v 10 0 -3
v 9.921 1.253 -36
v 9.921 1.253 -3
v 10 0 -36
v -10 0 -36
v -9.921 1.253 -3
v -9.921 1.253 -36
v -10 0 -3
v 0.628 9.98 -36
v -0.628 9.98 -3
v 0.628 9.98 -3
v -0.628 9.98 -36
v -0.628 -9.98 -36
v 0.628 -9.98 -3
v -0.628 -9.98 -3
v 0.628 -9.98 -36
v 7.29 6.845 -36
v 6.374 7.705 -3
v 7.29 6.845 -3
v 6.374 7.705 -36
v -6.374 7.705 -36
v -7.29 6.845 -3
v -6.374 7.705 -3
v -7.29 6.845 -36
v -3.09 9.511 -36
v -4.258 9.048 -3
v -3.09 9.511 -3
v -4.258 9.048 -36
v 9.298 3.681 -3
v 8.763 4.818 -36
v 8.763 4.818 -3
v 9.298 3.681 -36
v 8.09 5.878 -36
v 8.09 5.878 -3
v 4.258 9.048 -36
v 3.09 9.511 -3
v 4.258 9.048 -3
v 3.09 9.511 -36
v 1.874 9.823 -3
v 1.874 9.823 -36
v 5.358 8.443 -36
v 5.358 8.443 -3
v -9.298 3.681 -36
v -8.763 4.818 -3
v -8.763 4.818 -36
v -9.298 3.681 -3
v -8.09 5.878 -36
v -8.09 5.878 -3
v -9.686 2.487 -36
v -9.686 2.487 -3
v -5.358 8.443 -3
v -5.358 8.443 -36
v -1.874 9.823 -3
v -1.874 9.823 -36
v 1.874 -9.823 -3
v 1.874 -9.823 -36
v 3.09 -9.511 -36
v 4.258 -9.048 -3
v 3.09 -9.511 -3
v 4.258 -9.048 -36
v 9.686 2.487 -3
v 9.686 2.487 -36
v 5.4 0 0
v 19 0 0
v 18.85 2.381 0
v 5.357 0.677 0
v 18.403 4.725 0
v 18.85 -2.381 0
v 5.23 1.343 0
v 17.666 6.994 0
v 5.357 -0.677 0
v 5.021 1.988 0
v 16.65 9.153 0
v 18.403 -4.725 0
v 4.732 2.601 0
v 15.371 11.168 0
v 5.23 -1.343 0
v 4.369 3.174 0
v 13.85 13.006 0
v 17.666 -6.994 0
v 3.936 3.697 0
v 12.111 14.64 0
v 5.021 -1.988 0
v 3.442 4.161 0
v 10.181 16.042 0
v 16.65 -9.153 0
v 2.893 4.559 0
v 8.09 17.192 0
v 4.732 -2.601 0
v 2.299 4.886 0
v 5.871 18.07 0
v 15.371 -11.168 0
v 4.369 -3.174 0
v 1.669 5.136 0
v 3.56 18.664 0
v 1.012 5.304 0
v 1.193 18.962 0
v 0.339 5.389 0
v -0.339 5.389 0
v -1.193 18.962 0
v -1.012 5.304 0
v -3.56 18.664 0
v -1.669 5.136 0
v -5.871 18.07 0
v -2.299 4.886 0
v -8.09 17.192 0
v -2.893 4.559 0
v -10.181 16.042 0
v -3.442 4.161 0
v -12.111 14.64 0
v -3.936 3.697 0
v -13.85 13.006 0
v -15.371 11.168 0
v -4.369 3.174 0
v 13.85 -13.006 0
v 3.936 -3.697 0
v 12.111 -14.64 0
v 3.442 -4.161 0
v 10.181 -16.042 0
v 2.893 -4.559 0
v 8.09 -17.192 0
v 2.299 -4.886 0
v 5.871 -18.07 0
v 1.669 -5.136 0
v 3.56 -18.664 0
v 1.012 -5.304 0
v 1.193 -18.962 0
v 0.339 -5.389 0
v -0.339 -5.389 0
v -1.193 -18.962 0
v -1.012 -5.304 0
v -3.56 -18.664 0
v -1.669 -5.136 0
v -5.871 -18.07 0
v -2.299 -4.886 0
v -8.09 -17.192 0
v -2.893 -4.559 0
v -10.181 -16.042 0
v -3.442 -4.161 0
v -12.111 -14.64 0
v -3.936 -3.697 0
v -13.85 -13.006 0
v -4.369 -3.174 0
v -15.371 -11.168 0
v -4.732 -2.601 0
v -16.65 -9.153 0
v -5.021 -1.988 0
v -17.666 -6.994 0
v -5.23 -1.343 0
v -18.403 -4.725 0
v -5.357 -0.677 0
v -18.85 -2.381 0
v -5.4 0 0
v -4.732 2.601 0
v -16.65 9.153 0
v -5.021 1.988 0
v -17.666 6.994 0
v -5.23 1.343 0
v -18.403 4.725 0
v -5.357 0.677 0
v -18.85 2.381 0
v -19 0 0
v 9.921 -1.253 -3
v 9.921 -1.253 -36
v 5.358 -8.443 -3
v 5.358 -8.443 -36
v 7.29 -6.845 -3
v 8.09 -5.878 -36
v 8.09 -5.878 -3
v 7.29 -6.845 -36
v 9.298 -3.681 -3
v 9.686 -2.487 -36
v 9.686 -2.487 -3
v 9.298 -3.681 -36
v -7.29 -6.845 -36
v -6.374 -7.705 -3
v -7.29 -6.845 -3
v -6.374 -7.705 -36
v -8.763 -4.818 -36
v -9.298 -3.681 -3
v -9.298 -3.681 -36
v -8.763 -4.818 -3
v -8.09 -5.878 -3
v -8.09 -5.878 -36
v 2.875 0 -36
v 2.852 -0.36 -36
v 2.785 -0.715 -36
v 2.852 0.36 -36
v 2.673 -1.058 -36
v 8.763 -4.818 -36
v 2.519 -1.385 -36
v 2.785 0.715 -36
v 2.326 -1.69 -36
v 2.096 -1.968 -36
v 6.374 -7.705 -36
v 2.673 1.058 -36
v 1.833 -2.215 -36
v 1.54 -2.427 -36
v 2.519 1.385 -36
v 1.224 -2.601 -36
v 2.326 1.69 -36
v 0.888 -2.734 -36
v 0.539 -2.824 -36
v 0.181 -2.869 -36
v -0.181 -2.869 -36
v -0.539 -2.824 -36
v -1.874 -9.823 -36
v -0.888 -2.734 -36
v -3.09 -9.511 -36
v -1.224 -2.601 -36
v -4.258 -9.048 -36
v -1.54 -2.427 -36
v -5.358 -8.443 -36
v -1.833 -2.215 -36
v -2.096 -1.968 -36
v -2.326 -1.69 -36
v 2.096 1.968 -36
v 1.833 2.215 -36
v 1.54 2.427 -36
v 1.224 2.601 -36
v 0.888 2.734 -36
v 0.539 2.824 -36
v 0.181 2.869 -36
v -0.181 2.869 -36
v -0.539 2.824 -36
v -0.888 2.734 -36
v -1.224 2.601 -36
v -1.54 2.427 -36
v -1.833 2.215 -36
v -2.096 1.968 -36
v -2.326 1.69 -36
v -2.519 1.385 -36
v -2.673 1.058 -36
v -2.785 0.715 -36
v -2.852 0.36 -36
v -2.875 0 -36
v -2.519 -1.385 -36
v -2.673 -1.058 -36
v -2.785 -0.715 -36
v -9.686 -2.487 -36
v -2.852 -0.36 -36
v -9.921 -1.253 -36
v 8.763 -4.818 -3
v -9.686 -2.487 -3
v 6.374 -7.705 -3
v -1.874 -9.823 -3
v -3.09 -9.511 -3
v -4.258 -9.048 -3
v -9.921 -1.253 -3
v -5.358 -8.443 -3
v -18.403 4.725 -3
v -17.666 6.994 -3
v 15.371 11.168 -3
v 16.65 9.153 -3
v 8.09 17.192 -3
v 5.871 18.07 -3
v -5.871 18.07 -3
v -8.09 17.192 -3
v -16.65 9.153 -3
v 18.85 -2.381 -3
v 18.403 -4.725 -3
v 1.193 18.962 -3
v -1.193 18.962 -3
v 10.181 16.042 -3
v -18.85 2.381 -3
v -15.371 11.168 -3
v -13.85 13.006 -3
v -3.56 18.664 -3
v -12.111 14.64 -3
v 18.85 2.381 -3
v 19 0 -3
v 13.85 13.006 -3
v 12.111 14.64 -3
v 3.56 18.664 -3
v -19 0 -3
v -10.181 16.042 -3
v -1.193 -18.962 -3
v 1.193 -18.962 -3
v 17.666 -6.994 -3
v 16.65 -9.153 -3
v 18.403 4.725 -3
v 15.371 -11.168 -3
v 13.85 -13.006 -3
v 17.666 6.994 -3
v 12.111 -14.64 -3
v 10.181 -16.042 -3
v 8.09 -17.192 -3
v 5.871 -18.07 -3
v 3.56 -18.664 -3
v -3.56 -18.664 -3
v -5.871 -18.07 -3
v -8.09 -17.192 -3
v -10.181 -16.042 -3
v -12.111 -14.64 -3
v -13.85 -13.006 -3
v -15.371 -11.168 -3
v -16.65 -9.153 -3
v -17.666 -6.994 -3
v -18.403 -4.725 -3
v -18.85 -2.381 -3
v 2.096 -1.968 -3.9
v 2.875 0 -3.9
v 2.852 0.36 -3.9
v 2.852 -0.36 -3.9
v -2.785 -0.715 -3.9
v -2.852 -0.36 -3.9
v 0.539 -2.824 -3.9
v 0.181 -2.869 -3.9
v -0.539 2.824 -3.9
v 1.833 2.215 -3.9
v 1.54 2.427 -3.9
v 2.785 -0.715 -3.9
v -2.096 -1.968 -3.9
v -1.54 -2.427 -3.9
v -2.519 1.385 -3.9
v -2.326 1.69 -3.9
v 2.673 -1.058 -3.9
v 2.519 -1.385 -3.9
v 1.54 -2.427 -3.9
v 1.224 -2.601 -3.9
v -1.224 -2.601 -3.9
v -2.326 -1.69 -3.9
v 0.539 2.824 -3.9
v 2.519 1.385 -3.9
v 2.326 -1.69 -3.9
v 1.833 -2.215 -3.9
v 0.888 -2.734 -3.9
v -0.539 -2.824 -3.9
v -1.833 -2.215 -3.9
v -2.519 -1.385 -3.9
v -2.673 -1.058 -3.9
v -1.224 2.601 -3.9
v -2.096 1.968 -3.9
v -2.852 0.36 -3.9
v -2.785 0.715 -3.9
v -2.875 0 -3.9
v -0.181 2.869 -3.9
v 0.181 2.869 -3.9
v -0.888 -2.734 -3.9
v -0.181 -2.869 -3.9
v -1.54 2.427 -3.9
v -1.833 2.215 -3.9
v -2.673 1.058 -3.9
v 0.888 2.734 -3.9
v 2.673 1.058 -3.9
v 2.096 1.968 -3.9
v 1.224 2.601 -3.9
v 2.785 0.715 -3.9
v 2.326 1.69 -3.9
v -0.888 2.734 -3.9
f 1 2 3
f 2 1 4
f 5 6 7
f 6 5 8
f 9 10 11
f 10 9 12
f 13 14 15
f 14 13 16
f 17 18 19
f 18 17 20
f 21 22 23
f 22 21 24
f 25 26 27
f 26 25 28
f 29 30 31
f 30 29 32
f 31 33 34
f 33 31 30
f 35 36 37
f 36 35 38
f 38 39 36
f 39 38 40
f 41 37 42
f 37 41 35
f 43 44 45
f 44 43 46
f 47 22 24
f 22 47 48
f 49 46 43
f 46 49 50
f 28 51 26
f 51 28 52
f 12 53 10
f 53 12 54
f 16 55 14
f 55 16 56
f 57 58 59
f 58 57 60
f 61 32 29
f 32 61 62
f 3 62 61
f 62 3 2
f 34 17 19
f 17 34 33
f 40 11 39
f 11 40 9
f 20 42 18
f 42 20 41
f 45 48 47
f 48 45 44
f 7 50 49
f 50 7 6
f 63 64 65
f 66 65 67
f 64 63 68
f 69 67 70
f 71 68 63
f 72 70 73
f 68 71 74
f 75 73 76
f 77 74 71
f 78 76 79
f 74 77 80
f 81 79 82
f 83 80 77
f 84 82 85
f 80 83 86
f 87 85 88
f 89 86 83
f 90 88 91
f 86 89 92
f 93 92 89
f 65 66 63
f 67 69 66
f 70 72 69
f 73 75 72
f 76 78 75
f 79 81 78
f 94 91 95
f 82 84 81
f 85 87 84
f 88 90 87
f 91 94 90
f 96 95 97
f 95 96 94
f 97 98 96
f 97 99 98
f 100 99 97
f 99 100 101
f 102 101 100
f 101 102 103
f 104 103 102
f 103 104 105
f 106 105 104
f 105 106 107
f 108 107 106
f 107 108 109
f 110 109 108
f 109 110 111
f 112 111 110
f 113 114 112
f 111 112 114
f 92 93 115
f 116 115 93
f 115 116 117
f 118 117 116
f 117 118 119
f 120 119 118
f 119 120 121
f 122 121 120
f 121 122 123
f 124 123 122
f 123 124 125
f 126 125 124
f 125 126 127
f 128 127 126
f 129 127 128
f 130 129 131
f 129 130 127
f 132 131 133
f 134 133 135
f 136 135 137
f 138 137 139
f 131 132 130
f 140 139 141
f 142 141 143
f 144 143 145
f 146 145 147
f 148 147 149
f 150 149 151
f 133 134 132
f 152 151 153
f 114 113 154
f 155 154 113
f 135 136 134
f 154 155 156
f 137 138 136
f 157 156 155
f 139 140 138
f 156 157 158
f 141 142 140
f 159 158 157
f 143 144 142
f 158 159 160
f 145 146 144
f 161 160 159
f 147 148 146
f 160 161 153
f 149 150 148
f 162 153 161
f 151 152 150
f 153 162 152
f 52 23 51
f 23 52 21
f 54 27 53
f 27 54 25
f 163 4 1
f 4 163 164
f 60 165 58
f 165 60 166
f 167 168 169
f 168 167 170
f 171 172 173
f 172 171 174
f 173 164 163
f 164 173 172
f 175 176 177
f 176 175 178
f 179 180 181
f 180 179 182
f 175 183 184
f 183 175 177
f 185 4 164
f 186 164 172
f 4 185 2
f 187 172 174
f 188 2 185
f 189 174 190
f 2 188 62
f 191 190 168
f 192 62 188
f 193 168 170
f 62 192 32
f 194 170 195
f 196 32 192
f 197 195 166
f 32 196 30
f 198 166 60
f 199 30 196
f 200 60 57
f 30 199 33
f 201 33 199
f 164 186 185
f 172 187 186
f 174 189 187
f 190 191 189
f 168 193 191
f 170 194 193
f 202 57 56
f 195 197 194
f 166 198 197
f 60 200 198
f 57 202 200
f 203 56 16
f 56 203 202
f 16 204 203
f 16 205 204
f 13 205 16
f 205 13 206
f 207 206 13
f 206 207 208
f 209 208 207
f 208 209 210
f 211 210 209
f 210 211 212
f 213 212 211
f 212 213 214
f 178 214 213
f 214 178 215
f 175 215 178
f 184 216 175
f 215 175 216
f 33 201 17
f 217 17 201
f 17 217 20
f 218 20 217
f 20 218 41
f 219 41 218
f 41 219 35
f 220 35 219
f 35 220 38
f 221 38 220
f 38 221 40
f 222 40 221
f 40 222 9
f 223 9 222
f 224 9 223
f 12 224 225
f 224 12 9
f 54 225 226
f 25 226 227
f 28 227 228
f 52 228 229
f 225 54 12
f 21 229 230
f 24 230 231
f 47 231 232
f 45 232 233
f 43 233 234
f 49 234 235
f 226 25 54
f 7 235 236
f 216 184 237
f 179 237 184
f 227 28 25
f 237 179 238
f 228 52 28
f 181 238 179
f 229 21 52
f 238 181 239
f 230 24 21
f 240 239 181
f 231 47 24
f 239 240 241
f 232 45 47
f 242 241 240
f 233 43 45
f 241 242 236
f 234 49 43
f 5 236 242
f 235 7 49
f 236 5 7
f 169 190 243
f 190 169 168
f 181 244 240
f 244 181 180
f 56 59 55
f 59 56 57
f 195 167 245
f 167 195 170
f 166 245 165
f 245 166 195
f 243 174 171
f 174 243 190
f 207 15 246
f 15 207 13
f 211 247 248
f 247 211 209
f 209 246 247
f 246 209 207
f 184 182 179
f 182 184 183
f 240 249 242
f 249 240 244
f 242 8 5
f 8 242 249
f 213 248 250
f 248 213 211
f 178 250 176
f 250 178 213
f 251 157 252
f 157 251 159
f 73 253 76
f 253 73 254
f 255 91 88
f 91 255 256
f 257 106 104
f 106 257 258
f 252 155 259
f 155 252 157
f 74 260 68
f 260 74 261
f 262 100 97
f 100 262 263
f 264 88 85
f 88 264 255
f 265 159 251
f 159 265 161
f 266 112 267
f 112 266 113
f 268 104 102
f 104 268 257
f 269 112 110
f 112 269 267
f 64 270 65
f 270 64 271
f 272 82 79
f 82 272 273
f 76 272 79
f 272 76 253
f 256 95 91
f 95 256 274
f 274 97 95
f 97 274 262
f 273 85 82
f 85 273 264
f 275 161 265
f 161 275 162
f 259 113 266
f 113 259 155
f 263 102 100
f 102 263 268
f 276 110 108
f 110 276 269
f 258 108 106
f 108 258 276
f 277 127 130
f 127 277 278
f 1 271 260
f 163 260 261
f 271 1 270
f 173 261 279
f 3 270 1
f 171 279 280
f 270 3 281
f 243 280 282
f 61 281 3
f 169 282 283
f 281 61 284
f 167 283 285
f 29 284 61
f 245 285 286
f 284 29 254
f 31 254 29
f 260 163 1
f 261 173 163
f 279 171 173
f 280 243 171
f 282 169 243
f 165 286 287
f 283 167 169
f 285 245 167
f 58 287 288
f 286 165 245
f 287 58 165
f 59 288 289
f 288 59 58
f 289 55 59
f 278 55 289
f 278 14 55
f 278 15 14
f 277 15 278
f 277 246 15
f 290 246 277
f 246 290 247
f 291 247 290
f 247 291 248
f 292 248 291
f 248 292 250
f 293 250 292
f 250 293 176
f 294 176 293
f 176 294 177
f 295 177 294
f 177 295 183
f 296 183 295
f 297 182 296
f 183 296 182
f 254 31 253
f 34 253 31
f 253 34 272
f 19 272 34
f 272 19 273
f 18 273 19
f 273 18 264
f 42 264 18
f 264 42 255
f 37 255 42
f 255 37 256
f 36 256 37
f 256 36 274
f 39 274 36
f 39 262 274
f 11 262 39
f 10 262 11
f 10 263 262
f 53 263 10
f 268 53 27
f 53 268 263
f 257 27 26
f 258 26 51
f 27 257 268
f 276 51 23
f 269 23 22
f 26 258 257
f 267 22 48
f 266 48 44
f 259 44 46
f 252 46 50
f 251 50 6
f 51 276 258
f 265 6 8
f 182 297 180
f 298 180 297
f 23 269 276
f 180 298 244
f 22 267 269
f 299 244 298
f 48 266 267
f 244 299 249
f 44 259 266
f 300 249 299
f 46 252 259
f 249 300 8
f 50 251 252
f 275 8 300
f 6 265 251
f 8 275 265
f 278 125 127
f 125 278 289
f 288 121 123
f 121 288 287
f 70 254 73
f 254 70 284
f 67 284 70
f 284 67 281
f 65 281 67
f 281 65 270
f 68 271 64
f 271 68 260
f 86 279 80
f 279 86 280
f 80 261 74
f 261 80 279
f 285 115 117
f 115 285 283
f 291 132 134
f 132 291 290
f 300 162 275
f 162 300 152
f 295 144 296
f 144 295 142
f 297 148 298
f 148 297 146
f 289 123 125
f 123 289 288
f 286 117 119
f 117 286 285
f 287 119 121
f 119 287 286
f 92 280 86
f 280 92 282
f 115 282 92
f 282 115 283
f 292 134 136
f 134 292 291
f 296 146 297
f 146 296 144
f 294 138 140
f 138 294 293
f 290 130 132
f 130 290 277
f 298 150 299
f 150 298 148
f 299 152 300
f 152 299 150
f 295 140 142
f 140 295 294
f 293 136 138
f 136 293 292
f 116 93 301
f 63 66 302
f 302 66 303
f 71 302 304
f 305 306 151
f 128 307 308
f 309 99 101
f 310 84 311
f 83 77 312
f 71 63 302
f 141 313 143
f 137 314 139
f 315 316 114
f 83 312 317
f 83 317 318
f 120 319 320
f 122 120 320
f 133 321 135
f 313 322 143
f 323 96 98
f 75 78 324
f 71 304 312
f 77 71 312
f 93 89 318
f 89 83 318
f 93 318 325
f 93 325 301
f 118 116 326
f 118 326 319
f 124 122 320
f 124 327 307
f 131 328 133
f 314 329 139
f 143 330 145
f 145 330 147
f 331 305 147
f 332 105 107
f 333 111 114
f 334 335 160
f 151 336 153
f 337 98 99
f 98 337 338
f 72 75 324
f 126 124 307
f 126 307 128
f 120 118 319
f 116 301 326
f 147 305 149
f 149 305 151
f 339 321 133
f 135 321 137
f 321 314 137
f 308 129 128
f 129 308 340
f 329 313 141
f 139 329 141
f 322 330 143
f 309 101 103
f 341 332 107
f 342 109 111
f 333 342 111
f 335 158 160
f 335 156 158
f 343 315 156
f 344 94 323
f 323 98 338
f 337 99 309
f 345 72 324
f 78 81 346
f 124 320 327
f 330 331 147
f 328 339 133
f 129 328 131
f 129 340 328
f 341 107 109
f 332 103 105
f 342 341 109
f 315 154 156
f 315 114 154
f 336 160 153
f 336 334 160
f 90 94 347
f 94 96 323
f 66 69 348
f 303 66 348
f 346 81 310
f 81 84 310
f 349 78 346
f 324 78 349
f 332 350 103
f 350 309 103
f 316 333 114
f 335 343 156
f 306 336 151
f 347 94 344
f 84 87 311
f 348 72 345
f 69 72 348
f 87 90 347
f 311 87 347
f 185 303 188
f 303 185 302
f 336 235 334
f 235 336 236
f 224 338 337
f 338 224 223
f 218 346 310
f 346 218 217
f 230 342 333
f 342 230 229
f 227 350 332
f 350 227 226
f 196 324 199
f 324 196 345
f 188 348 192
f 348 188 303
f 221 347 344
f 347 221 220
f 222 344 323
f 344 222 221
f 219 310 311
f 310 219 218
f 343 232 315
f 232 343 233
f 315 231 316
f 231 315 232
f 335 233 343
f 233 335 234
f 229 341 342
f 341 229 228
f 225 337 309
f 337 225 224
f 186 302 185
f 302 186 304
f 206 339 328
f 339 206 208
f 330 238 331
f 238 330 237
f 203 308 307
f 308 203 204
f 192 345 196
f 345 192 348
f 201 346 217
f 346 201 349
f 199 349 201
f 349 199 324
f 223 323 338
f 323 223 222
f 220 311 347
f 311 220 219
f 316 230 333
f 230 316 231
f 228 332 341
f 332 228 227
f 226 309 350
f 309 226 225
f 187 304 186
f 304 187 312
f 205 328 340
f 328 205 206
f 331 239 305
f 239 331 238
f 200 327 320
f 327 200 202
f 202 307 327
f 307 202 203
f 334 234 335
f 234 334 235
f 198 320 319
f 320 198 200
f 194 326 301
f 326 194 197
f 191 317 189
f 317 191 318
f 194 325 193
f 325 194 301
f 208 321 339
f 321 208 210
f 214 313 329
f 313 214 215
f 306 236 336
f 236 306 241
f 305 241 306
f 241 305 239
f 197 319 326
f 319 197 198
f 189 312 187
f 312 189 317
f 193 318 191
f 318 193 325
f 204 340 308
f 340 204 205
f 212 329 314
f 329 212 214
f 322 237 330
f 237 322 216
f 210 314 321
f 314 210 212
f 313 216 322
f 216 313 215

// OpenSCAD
$fn = 50;


difference() {
	union() {
		translate(v = [0, 0, -36.0000000000]) {
			cylinder(h = 36, r = 10.0000000000);
		}
		translate(v = [0, 0, -3.0000000000]) {
			cylinder(h = 3, r = 19.0000000000);
		}
	}
	union() {
		translate(v = [0, 0, 0]) {
			rotate(a = [0, 0, 0]) {
				difference() {
					union() {
						#translate(v = [0, 0, -36.0000000000]) {
							cylinder(h = 36, r = 2.6000000000);
						}
						#translate(v = [0, 0, -3.9000000000]) {
							cylinder(h = 3.9000000000, r = 10.0000000000, r1 = 2.8750000000, r2 = 5.4000000000);
						}
						#translate(v = [0, 0, -36.0000000000]) {
							cylinder(h = 36, r = 2.8750000000);
						}
						#translate(v = [0, 0, -36.0000000000]) {
							cylinder(h = 36, r = 2.6000000000);
						}
					}
					union();
				}
			}
		}
	}
}
